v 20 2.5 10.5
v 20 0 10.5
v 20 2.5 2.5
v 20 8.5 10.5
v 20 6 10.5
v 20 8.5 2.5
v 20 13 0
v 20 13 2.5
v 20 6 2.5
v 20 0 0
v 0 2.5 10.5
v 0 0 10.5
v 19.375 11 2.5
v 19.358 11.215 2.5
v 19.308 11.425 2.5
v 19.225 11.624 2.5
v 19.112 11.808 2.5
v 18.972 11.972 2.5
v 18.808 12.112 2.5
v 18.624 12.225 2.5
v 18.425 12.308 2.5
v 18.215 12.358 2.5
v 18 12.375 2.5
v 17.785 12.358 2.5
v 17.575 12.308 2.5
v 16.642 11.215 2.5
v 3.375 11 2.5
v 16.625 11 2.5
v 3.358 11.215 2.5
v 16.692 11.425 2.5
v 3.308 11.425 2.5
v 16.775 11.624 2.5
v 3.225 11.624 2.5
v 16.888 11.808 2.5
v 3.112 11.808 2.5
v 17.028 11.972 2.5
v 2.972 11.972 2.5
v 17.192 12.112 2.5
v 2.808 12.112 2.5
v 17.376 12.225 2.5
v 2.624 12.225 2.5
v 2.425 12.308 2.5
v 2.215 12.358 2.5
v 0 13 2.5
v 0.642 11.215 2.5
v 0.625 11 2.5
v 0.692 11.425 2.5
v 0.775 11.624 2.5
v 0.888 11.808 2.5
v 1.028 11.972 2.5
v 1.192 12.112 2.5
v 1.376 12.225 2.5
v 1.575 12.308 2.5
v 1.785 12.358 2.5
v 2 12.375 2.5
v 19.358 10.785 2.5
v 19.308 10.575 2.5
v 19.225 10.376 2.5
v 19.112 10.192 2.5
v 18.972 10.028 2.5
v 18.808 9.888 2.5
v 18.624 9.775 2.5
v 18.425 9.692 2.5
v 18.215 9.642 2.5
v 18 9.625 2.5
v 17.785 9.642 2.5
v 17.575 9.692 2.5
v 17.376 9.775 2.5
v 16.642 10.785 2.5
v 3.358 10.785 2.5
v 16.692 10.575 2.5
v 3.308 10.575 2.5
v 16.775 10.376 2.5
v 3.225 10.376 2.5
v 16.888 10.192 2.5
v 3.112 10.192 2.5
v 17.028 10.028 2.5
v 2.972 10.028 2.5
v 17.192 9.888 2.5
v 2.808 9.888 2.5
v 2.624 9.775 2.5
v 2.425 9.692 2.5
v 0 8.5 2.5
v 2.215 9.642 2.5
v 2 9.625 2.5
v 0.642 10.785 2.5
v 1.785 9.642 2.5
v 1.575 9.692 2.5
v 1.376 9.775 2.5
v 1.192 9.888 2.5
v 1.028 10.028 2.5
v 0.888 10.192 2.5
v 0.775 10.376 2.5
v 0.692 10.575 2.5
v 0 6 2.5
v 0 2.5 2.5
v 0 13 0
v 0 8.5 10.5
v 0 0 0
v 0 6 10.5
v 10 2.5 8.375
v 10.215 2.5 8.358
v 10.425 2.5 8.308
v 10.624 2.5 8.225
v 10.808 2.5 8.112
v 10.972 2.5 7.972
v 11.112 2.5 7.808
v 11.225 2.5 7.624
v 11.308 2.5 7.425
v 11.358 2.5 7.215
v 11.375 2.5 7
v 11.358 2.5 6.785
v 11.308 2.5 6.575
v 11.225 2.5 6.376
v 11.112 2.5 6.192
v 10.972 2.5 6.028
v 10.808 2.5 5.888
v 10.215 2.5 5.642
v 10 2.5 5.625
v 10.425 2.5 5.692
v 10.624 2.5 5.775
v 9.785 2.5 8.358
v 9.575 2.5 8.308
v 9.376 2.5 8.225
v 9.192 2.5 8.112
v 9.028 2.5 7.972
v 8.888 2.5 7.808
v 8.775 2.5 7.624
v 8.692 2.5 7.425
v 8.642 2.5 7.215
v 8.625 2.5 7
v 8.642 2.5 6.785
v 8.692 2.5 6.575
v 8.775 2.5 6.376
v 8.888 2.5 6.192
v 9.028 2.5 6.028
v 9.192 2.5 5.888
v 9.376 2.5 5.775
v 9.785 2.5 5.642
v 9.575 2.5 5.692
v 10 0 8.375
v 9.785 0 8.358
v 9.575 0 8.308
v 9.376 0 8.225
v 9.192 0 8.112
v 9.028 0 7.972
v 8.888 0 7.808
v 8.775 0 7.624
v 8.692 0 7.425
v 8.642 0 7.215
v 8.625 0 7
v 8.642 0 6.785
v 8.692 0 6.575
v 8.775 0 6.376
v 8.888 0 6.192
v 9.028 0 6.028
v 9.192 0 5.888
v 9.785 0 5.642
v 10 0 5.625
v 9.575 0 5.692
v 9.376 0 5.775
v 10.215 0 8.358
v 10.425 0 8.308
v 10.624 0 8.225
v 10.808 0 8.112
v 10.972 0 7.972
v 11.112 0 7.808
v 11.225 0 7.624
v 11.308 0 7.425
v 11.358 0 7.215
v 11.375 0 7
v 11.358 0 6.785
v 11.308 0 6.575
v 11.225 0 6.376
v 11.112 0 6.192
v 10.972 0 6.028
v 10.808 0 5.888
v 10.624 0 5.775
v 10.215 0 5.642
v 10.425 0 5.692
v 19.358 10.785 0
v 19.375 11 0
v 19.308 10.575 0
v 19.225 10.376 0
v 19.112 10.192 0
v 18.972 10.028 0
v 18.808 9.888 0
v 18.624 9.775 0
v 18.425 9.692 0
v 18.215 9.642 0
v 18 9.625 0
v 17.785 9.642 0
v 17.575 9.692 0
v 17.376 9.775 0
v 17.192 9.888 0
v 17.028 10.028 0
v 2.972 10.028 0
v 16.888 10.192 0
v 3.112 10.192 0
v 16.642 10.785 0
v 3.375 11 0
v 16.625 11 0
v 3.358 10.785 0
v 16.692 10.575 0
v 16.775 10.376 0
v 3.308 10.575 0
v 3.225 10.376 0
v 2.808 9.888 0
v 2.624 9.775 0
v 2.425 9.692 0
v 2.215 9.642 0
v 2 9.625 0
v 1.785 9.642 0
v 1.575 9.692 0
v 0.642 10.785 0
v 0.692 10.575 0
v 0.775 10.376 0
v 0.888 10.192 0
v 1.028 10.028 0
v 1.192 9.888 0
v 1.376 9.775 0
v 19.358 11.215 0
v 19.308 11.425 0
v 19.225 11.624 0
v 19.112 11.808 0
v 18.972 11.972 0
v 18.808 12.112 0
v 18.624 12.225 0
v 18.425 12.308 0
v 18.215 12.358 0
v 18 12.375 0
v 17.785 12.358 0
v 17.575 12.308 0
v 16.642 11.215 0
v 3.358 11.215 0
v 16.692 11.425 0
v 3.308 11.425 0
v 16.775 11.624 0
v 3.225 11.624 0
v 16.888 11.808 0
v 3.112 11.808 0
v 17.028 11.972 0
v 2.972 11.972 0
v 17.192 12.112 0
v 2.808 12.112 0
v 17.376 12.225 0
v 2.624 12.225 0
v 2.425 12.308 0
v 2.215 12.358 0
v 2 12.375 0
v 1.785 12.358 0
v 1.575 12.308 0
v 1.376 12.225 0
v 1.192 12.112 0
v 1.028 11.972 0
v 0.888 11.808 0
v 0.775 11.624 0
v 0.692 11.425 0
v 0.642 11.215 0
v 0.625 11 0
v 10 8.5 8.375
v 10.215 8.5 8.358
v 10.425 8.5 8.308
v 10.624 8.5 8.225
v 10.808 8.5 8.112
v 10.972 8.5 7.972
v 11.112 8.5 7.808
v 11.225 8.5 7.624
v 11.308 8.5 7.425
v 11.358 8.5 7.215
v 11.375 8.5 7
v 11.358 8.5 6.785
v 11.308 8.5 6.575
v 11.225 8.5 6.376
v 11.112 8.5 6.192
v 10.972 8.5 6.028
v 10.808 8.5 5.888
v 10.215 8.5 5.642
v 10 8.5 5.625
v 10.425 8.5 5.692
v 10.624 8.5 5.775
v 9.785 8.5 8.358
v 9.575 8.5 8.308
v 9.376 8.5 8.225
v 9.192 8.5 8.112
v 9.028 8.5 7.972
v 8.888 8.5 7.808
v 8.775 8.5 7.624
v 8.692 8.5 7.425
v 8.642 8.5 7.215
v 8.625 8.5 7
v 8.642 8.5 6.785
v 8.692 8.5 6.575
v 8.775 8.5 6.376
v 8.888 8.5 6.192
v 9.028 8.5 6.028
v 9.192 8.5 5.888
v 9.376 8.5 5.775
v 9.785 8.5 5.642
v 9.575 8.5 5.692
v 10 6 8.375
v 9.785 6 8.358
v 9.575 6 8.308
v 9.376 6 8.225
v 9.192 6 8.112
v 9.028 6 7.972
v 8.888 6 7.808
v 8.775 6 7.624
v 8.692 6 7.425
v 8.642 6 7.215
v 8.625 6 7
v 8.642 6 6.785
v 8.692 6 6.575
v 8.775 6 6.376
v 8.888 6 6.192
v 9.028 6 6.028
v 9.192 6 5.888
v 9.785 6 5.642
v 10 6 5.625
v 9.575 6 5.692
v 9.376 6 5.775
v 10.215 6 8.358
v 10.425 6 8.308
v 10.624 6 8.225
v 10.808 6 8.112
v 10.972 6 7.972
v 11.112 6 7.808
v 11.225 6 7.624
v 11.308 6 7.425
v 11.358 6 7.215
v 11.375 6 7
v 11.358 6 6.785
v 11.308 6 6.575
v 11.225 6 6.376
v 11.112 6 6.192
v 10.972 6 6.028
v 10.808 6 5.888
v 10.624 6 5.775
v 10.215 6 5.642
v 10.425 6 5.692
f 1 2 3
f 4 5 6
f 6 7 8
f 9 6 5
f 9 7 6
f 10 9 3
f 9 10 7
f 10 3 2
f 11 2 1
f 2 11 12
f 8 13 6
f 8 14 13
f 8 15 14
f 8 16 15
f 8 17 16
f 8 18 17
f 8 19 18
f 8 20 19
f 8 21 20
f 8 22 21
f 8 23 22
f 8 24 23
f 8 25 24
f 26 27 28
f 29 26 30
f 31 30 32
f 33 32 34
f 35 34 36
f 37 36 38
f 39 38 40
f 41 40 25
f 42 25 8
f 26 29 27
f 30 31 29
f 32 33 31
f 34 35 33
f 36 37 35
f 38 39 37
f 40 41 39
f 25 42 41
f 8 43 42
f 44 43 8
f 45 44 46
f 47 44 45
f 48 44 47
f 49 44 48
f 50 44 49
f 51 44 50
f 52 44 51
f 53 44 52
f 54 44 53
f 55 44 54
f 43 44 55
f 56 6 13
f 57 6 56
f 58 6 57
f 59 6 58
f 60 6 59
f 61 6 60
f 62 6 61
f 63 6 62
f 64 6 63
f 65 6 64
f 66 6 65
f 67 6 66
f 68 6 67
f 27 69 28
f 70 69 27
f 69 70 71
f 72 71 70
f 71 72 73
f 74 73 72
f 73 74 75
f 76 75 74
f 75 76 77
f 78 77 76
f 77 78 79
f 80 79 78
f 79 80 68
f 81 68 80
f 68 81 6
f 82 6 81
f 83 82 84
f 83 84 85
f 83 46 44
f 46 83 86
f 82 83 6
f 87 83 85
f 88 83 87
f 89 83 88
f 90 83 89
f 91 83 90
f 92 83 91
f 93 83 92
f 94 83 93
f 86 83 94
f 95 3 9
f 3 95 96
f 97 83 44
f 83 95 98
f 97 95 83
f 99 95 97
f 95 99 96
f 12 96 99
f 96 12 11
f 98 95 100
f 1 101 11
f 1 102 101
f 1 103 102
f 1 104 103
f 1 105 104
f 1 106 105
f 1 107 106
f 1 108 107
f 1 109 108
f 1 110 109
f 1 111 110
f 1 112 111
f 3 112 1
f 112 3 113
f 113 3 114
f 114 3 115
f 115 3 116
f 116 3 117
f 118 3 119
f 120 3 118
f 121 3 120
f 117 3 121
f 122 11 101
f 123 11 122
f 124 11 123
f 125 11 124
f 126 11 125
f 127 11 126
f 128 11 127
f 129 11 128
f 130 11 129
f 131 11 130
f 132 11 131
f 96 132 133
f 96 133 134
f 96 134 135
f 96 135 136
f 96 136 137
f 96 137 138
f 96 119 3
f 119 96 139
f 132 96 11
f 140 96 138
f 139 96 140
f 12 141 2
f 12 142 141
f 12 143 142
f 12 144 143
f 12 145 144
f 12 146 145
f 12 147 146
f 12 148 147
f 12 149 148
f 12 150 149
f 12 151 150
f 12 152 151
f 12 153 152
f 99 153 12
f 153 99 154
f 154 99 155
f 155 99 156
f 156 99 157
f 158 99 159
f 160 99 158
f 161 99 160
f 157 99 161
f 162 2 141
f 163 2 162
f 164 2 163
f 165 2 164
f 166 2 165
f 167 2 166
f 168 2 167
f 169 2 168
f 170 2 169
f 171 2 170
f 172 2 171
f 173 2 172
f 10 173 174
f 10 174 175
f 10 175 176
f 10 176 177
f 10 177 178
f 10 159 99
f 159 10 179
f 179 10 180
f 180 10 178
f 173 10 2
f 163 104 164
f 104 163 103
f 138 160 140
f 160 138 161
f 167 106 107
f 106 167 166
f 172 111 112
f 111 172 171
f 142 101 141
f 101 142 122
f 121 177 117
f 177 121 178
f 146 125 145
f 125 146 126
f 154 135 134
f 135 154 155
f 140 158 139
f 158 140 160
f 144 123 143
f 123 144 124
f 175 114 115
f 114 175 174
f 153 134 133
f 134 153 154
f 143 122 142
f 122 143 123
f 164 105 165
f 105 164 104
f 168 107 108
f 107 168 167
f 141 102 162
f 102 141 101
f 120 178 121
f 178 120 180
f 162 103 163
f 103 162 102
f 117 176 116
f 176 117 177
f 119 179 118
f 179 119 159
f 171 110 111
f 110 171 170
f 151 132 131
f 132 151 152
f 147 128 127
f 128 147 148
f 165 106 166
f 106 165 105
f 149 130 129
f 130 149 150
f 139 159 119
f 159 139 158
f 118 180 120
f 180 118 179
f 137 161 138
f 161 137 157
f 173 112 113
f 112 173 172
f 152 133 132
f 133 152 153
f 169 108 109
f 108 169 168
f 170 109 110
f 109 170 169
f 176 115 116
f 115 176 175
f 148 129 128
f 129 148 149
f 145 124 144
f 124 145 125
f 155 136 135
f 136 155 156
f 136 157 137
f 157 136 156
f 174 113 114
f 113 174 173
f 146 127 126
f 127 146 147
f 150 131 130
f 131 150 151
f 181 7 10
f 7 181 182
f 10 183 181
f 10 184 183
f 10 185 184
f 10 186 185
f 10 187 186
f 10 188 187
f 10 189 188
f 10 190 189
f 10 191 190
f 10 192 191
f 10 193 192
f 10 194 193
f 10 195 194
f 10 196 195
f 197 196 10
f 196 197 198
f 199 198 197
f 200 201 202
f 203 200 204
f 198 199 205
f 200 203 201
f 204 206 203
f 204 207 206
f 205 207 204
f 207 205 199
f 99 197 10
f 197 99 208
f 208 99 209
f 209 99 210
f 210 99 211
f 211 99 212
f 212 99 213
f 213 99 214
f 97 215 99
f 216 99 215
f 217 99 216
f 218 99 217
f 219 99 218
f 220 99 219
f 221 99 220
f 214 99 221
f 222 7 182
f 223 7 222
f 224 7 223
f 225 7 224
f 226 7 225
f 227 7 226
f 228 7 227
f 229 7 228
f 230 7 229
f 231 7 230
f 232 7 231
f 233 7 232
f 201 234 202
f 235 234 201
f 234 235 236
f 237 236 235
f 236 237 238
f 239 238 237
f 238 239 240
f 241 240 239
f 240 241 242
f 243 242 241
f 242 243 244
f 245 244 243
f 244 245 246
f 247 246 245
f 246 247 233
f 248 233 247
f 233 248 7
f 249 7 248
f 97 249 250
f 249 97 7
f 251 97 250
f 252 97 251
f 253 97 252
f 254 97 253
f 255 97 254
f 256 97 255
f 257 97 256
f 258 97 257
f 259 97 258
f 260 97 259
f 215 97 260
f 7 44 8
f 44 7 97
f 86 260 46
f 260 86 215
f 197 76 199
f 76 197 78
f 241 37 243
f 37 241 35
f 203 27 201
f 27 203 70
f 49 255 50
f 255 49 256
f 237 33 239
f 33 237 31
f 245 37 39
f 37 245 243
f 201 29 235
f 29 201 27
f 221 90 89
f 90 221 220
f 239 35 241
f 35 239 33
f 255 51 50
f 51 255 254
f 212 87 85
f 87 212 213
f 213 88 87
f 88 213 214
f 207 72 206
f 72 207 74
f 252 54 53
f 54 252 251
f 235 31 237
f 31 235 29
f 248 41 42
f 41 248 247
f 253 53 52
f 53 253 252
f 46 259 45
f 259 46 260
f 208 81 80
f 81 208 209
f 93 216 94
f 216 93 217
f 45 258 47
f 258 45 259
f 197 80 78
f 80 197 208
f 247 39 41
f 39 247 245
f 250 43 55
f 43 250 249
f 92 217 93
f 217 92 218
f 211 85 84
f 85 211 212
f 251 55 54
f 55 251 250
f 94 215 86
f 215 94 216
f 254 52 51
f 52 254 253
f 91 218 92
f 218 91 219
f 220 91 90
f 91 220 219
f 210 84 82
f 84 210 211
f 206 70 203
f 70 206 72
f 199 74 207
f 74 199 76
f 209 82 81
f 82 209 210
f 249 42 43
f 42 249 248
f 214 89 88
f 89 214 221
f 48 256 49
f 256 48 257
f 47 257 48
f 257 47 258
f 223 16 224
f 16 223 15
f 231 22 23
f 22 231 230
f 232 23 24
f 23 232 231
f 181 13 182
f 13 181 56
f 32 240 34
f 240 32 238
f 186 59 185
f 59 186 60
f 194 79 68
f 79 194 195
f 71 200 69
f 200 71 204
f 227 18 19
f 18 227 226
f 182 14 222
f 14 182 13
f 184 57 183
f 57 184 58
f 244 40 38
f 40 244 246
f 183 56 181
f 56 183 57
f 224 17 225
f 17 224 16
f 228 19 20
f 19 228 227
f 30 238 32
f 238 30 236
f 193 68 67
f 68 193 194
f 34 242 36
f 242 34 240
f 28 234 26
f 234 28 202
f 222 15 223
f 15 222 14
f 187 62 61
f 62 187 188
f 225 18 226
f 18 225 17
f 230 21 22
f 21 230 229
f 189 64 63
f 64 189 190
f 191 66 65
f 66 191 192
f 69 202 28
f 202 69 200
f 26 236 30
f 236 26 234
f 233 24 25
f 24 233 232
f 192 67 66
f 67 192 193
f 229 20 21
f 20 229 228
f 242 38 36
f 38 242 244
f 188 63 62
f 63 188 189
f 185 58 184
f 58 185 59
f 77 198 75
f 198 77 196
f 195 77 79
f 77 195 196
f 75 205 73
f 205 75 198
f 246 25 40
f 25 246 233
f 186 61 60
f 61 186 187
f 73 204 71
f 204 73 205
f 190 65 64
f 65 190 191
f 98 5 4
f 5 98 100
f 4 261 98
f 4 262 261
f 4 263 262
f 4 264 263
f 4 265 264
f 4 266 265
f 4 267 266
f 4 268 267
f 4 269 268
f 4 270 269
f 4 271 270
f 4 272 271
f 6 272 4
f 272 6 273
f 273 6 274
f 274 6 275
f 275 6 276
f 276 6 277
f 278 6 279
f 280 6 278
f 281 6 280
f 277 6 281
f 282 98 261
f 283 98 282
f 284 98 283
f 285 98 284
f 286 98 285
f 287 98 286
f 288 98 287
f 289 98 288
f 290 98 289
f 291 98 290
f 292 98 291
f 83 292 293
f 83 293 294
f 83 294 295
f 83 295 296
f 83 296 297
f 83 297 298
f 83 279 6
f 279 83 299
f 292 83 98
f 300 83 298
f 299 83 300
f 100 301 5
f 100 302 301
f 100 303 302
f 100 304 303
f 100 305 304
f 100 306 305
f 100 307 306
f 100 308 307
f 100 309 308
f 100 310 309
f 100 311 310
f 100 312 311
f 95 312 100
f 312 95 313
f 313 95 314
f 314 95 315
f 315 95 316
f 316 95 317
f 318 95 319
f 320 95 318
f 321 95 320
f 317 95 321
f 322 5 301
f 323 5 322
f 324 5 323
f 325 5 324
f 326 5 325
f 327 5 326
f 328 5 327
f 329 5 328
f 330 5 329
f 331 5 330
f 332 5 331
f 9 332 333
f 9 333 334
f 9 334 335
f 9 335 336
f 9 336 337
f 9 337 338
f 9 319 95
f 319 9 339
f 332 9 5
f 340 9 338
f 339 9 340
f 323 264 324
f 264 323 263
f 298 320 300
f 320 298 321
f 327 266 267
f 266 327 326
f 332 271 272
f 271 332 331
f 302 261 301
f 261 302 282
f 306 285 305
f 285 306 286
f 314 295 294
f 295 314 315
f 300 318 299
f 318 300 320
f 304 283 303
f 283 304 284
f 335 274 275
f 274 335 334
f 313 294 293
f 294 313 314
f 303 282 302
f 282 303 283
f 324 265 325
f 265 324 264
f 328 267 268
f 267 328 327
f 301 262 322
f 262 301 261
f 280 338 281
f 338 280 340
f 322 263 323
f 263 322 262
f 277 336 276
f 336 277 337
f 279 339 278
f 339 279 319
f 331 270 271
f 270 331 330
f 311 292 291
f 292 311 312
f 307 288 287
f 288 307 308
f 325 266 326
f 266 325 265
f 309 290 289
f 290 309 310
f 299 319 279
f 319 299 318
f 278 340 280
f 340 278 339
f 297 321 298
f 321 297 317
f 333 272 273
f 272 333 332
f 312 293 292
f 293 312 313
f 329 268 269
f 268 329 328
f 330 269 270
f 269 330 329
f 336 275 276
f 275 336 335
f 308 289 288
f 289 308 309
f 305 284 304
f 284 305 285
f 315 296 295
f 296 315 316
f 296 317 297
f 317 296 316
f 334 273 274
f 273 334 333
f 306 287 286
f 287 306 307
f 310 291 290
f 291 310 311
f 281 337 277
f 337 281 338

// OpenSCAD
thickness = 2.5;
gap = 3.5;
adxl_width = 20;
adxl_thickness = 3;
adxl_depth = 13;
m3_rad = 2.75/2;
m3_spacing = 2;

grip_height = 8;

// Flat plate.
difference()
{
    cube([adxl_width, adxl_depth, thickness]);
    translate([m3_spacing, adxl_depth - m3_spacing, 0])
    {
        cylinder(h = thickness, r = m3_rad, $fn = 40);
    }
    translate([adxl_width - m3_spacing, adxl_depth - m3_spacing, 0])
    {
        cylinder(h = thickness, r = m3_rad, $fn = 40);
    }
}

// Front plate.
difference()
{
    translate([0, 0, thickness])
    {
        cube([adxl_width, thickness, grip_height]);
    }
    
    translate([adxl_width / 2, 0, 7])
    {
        rotate(a = [0, -90, -90])
        {
            cylinder(h = thickness, r = m3_rad, $fn = 40);
        }
    }
}

// Back plate.
difference()
{
    translate([0, thickness + gap, thickness])
    {
        cube([adxl_width, thickness, grip_height]);
    }
    
    translate([adxl_width / 2, thickness + gap, 7])
    {
        rotate(a = [0, -90, -90])
        {
            cylinder(h = thickness, r = m3_rad, $fn = 40);
        }
    }
}
